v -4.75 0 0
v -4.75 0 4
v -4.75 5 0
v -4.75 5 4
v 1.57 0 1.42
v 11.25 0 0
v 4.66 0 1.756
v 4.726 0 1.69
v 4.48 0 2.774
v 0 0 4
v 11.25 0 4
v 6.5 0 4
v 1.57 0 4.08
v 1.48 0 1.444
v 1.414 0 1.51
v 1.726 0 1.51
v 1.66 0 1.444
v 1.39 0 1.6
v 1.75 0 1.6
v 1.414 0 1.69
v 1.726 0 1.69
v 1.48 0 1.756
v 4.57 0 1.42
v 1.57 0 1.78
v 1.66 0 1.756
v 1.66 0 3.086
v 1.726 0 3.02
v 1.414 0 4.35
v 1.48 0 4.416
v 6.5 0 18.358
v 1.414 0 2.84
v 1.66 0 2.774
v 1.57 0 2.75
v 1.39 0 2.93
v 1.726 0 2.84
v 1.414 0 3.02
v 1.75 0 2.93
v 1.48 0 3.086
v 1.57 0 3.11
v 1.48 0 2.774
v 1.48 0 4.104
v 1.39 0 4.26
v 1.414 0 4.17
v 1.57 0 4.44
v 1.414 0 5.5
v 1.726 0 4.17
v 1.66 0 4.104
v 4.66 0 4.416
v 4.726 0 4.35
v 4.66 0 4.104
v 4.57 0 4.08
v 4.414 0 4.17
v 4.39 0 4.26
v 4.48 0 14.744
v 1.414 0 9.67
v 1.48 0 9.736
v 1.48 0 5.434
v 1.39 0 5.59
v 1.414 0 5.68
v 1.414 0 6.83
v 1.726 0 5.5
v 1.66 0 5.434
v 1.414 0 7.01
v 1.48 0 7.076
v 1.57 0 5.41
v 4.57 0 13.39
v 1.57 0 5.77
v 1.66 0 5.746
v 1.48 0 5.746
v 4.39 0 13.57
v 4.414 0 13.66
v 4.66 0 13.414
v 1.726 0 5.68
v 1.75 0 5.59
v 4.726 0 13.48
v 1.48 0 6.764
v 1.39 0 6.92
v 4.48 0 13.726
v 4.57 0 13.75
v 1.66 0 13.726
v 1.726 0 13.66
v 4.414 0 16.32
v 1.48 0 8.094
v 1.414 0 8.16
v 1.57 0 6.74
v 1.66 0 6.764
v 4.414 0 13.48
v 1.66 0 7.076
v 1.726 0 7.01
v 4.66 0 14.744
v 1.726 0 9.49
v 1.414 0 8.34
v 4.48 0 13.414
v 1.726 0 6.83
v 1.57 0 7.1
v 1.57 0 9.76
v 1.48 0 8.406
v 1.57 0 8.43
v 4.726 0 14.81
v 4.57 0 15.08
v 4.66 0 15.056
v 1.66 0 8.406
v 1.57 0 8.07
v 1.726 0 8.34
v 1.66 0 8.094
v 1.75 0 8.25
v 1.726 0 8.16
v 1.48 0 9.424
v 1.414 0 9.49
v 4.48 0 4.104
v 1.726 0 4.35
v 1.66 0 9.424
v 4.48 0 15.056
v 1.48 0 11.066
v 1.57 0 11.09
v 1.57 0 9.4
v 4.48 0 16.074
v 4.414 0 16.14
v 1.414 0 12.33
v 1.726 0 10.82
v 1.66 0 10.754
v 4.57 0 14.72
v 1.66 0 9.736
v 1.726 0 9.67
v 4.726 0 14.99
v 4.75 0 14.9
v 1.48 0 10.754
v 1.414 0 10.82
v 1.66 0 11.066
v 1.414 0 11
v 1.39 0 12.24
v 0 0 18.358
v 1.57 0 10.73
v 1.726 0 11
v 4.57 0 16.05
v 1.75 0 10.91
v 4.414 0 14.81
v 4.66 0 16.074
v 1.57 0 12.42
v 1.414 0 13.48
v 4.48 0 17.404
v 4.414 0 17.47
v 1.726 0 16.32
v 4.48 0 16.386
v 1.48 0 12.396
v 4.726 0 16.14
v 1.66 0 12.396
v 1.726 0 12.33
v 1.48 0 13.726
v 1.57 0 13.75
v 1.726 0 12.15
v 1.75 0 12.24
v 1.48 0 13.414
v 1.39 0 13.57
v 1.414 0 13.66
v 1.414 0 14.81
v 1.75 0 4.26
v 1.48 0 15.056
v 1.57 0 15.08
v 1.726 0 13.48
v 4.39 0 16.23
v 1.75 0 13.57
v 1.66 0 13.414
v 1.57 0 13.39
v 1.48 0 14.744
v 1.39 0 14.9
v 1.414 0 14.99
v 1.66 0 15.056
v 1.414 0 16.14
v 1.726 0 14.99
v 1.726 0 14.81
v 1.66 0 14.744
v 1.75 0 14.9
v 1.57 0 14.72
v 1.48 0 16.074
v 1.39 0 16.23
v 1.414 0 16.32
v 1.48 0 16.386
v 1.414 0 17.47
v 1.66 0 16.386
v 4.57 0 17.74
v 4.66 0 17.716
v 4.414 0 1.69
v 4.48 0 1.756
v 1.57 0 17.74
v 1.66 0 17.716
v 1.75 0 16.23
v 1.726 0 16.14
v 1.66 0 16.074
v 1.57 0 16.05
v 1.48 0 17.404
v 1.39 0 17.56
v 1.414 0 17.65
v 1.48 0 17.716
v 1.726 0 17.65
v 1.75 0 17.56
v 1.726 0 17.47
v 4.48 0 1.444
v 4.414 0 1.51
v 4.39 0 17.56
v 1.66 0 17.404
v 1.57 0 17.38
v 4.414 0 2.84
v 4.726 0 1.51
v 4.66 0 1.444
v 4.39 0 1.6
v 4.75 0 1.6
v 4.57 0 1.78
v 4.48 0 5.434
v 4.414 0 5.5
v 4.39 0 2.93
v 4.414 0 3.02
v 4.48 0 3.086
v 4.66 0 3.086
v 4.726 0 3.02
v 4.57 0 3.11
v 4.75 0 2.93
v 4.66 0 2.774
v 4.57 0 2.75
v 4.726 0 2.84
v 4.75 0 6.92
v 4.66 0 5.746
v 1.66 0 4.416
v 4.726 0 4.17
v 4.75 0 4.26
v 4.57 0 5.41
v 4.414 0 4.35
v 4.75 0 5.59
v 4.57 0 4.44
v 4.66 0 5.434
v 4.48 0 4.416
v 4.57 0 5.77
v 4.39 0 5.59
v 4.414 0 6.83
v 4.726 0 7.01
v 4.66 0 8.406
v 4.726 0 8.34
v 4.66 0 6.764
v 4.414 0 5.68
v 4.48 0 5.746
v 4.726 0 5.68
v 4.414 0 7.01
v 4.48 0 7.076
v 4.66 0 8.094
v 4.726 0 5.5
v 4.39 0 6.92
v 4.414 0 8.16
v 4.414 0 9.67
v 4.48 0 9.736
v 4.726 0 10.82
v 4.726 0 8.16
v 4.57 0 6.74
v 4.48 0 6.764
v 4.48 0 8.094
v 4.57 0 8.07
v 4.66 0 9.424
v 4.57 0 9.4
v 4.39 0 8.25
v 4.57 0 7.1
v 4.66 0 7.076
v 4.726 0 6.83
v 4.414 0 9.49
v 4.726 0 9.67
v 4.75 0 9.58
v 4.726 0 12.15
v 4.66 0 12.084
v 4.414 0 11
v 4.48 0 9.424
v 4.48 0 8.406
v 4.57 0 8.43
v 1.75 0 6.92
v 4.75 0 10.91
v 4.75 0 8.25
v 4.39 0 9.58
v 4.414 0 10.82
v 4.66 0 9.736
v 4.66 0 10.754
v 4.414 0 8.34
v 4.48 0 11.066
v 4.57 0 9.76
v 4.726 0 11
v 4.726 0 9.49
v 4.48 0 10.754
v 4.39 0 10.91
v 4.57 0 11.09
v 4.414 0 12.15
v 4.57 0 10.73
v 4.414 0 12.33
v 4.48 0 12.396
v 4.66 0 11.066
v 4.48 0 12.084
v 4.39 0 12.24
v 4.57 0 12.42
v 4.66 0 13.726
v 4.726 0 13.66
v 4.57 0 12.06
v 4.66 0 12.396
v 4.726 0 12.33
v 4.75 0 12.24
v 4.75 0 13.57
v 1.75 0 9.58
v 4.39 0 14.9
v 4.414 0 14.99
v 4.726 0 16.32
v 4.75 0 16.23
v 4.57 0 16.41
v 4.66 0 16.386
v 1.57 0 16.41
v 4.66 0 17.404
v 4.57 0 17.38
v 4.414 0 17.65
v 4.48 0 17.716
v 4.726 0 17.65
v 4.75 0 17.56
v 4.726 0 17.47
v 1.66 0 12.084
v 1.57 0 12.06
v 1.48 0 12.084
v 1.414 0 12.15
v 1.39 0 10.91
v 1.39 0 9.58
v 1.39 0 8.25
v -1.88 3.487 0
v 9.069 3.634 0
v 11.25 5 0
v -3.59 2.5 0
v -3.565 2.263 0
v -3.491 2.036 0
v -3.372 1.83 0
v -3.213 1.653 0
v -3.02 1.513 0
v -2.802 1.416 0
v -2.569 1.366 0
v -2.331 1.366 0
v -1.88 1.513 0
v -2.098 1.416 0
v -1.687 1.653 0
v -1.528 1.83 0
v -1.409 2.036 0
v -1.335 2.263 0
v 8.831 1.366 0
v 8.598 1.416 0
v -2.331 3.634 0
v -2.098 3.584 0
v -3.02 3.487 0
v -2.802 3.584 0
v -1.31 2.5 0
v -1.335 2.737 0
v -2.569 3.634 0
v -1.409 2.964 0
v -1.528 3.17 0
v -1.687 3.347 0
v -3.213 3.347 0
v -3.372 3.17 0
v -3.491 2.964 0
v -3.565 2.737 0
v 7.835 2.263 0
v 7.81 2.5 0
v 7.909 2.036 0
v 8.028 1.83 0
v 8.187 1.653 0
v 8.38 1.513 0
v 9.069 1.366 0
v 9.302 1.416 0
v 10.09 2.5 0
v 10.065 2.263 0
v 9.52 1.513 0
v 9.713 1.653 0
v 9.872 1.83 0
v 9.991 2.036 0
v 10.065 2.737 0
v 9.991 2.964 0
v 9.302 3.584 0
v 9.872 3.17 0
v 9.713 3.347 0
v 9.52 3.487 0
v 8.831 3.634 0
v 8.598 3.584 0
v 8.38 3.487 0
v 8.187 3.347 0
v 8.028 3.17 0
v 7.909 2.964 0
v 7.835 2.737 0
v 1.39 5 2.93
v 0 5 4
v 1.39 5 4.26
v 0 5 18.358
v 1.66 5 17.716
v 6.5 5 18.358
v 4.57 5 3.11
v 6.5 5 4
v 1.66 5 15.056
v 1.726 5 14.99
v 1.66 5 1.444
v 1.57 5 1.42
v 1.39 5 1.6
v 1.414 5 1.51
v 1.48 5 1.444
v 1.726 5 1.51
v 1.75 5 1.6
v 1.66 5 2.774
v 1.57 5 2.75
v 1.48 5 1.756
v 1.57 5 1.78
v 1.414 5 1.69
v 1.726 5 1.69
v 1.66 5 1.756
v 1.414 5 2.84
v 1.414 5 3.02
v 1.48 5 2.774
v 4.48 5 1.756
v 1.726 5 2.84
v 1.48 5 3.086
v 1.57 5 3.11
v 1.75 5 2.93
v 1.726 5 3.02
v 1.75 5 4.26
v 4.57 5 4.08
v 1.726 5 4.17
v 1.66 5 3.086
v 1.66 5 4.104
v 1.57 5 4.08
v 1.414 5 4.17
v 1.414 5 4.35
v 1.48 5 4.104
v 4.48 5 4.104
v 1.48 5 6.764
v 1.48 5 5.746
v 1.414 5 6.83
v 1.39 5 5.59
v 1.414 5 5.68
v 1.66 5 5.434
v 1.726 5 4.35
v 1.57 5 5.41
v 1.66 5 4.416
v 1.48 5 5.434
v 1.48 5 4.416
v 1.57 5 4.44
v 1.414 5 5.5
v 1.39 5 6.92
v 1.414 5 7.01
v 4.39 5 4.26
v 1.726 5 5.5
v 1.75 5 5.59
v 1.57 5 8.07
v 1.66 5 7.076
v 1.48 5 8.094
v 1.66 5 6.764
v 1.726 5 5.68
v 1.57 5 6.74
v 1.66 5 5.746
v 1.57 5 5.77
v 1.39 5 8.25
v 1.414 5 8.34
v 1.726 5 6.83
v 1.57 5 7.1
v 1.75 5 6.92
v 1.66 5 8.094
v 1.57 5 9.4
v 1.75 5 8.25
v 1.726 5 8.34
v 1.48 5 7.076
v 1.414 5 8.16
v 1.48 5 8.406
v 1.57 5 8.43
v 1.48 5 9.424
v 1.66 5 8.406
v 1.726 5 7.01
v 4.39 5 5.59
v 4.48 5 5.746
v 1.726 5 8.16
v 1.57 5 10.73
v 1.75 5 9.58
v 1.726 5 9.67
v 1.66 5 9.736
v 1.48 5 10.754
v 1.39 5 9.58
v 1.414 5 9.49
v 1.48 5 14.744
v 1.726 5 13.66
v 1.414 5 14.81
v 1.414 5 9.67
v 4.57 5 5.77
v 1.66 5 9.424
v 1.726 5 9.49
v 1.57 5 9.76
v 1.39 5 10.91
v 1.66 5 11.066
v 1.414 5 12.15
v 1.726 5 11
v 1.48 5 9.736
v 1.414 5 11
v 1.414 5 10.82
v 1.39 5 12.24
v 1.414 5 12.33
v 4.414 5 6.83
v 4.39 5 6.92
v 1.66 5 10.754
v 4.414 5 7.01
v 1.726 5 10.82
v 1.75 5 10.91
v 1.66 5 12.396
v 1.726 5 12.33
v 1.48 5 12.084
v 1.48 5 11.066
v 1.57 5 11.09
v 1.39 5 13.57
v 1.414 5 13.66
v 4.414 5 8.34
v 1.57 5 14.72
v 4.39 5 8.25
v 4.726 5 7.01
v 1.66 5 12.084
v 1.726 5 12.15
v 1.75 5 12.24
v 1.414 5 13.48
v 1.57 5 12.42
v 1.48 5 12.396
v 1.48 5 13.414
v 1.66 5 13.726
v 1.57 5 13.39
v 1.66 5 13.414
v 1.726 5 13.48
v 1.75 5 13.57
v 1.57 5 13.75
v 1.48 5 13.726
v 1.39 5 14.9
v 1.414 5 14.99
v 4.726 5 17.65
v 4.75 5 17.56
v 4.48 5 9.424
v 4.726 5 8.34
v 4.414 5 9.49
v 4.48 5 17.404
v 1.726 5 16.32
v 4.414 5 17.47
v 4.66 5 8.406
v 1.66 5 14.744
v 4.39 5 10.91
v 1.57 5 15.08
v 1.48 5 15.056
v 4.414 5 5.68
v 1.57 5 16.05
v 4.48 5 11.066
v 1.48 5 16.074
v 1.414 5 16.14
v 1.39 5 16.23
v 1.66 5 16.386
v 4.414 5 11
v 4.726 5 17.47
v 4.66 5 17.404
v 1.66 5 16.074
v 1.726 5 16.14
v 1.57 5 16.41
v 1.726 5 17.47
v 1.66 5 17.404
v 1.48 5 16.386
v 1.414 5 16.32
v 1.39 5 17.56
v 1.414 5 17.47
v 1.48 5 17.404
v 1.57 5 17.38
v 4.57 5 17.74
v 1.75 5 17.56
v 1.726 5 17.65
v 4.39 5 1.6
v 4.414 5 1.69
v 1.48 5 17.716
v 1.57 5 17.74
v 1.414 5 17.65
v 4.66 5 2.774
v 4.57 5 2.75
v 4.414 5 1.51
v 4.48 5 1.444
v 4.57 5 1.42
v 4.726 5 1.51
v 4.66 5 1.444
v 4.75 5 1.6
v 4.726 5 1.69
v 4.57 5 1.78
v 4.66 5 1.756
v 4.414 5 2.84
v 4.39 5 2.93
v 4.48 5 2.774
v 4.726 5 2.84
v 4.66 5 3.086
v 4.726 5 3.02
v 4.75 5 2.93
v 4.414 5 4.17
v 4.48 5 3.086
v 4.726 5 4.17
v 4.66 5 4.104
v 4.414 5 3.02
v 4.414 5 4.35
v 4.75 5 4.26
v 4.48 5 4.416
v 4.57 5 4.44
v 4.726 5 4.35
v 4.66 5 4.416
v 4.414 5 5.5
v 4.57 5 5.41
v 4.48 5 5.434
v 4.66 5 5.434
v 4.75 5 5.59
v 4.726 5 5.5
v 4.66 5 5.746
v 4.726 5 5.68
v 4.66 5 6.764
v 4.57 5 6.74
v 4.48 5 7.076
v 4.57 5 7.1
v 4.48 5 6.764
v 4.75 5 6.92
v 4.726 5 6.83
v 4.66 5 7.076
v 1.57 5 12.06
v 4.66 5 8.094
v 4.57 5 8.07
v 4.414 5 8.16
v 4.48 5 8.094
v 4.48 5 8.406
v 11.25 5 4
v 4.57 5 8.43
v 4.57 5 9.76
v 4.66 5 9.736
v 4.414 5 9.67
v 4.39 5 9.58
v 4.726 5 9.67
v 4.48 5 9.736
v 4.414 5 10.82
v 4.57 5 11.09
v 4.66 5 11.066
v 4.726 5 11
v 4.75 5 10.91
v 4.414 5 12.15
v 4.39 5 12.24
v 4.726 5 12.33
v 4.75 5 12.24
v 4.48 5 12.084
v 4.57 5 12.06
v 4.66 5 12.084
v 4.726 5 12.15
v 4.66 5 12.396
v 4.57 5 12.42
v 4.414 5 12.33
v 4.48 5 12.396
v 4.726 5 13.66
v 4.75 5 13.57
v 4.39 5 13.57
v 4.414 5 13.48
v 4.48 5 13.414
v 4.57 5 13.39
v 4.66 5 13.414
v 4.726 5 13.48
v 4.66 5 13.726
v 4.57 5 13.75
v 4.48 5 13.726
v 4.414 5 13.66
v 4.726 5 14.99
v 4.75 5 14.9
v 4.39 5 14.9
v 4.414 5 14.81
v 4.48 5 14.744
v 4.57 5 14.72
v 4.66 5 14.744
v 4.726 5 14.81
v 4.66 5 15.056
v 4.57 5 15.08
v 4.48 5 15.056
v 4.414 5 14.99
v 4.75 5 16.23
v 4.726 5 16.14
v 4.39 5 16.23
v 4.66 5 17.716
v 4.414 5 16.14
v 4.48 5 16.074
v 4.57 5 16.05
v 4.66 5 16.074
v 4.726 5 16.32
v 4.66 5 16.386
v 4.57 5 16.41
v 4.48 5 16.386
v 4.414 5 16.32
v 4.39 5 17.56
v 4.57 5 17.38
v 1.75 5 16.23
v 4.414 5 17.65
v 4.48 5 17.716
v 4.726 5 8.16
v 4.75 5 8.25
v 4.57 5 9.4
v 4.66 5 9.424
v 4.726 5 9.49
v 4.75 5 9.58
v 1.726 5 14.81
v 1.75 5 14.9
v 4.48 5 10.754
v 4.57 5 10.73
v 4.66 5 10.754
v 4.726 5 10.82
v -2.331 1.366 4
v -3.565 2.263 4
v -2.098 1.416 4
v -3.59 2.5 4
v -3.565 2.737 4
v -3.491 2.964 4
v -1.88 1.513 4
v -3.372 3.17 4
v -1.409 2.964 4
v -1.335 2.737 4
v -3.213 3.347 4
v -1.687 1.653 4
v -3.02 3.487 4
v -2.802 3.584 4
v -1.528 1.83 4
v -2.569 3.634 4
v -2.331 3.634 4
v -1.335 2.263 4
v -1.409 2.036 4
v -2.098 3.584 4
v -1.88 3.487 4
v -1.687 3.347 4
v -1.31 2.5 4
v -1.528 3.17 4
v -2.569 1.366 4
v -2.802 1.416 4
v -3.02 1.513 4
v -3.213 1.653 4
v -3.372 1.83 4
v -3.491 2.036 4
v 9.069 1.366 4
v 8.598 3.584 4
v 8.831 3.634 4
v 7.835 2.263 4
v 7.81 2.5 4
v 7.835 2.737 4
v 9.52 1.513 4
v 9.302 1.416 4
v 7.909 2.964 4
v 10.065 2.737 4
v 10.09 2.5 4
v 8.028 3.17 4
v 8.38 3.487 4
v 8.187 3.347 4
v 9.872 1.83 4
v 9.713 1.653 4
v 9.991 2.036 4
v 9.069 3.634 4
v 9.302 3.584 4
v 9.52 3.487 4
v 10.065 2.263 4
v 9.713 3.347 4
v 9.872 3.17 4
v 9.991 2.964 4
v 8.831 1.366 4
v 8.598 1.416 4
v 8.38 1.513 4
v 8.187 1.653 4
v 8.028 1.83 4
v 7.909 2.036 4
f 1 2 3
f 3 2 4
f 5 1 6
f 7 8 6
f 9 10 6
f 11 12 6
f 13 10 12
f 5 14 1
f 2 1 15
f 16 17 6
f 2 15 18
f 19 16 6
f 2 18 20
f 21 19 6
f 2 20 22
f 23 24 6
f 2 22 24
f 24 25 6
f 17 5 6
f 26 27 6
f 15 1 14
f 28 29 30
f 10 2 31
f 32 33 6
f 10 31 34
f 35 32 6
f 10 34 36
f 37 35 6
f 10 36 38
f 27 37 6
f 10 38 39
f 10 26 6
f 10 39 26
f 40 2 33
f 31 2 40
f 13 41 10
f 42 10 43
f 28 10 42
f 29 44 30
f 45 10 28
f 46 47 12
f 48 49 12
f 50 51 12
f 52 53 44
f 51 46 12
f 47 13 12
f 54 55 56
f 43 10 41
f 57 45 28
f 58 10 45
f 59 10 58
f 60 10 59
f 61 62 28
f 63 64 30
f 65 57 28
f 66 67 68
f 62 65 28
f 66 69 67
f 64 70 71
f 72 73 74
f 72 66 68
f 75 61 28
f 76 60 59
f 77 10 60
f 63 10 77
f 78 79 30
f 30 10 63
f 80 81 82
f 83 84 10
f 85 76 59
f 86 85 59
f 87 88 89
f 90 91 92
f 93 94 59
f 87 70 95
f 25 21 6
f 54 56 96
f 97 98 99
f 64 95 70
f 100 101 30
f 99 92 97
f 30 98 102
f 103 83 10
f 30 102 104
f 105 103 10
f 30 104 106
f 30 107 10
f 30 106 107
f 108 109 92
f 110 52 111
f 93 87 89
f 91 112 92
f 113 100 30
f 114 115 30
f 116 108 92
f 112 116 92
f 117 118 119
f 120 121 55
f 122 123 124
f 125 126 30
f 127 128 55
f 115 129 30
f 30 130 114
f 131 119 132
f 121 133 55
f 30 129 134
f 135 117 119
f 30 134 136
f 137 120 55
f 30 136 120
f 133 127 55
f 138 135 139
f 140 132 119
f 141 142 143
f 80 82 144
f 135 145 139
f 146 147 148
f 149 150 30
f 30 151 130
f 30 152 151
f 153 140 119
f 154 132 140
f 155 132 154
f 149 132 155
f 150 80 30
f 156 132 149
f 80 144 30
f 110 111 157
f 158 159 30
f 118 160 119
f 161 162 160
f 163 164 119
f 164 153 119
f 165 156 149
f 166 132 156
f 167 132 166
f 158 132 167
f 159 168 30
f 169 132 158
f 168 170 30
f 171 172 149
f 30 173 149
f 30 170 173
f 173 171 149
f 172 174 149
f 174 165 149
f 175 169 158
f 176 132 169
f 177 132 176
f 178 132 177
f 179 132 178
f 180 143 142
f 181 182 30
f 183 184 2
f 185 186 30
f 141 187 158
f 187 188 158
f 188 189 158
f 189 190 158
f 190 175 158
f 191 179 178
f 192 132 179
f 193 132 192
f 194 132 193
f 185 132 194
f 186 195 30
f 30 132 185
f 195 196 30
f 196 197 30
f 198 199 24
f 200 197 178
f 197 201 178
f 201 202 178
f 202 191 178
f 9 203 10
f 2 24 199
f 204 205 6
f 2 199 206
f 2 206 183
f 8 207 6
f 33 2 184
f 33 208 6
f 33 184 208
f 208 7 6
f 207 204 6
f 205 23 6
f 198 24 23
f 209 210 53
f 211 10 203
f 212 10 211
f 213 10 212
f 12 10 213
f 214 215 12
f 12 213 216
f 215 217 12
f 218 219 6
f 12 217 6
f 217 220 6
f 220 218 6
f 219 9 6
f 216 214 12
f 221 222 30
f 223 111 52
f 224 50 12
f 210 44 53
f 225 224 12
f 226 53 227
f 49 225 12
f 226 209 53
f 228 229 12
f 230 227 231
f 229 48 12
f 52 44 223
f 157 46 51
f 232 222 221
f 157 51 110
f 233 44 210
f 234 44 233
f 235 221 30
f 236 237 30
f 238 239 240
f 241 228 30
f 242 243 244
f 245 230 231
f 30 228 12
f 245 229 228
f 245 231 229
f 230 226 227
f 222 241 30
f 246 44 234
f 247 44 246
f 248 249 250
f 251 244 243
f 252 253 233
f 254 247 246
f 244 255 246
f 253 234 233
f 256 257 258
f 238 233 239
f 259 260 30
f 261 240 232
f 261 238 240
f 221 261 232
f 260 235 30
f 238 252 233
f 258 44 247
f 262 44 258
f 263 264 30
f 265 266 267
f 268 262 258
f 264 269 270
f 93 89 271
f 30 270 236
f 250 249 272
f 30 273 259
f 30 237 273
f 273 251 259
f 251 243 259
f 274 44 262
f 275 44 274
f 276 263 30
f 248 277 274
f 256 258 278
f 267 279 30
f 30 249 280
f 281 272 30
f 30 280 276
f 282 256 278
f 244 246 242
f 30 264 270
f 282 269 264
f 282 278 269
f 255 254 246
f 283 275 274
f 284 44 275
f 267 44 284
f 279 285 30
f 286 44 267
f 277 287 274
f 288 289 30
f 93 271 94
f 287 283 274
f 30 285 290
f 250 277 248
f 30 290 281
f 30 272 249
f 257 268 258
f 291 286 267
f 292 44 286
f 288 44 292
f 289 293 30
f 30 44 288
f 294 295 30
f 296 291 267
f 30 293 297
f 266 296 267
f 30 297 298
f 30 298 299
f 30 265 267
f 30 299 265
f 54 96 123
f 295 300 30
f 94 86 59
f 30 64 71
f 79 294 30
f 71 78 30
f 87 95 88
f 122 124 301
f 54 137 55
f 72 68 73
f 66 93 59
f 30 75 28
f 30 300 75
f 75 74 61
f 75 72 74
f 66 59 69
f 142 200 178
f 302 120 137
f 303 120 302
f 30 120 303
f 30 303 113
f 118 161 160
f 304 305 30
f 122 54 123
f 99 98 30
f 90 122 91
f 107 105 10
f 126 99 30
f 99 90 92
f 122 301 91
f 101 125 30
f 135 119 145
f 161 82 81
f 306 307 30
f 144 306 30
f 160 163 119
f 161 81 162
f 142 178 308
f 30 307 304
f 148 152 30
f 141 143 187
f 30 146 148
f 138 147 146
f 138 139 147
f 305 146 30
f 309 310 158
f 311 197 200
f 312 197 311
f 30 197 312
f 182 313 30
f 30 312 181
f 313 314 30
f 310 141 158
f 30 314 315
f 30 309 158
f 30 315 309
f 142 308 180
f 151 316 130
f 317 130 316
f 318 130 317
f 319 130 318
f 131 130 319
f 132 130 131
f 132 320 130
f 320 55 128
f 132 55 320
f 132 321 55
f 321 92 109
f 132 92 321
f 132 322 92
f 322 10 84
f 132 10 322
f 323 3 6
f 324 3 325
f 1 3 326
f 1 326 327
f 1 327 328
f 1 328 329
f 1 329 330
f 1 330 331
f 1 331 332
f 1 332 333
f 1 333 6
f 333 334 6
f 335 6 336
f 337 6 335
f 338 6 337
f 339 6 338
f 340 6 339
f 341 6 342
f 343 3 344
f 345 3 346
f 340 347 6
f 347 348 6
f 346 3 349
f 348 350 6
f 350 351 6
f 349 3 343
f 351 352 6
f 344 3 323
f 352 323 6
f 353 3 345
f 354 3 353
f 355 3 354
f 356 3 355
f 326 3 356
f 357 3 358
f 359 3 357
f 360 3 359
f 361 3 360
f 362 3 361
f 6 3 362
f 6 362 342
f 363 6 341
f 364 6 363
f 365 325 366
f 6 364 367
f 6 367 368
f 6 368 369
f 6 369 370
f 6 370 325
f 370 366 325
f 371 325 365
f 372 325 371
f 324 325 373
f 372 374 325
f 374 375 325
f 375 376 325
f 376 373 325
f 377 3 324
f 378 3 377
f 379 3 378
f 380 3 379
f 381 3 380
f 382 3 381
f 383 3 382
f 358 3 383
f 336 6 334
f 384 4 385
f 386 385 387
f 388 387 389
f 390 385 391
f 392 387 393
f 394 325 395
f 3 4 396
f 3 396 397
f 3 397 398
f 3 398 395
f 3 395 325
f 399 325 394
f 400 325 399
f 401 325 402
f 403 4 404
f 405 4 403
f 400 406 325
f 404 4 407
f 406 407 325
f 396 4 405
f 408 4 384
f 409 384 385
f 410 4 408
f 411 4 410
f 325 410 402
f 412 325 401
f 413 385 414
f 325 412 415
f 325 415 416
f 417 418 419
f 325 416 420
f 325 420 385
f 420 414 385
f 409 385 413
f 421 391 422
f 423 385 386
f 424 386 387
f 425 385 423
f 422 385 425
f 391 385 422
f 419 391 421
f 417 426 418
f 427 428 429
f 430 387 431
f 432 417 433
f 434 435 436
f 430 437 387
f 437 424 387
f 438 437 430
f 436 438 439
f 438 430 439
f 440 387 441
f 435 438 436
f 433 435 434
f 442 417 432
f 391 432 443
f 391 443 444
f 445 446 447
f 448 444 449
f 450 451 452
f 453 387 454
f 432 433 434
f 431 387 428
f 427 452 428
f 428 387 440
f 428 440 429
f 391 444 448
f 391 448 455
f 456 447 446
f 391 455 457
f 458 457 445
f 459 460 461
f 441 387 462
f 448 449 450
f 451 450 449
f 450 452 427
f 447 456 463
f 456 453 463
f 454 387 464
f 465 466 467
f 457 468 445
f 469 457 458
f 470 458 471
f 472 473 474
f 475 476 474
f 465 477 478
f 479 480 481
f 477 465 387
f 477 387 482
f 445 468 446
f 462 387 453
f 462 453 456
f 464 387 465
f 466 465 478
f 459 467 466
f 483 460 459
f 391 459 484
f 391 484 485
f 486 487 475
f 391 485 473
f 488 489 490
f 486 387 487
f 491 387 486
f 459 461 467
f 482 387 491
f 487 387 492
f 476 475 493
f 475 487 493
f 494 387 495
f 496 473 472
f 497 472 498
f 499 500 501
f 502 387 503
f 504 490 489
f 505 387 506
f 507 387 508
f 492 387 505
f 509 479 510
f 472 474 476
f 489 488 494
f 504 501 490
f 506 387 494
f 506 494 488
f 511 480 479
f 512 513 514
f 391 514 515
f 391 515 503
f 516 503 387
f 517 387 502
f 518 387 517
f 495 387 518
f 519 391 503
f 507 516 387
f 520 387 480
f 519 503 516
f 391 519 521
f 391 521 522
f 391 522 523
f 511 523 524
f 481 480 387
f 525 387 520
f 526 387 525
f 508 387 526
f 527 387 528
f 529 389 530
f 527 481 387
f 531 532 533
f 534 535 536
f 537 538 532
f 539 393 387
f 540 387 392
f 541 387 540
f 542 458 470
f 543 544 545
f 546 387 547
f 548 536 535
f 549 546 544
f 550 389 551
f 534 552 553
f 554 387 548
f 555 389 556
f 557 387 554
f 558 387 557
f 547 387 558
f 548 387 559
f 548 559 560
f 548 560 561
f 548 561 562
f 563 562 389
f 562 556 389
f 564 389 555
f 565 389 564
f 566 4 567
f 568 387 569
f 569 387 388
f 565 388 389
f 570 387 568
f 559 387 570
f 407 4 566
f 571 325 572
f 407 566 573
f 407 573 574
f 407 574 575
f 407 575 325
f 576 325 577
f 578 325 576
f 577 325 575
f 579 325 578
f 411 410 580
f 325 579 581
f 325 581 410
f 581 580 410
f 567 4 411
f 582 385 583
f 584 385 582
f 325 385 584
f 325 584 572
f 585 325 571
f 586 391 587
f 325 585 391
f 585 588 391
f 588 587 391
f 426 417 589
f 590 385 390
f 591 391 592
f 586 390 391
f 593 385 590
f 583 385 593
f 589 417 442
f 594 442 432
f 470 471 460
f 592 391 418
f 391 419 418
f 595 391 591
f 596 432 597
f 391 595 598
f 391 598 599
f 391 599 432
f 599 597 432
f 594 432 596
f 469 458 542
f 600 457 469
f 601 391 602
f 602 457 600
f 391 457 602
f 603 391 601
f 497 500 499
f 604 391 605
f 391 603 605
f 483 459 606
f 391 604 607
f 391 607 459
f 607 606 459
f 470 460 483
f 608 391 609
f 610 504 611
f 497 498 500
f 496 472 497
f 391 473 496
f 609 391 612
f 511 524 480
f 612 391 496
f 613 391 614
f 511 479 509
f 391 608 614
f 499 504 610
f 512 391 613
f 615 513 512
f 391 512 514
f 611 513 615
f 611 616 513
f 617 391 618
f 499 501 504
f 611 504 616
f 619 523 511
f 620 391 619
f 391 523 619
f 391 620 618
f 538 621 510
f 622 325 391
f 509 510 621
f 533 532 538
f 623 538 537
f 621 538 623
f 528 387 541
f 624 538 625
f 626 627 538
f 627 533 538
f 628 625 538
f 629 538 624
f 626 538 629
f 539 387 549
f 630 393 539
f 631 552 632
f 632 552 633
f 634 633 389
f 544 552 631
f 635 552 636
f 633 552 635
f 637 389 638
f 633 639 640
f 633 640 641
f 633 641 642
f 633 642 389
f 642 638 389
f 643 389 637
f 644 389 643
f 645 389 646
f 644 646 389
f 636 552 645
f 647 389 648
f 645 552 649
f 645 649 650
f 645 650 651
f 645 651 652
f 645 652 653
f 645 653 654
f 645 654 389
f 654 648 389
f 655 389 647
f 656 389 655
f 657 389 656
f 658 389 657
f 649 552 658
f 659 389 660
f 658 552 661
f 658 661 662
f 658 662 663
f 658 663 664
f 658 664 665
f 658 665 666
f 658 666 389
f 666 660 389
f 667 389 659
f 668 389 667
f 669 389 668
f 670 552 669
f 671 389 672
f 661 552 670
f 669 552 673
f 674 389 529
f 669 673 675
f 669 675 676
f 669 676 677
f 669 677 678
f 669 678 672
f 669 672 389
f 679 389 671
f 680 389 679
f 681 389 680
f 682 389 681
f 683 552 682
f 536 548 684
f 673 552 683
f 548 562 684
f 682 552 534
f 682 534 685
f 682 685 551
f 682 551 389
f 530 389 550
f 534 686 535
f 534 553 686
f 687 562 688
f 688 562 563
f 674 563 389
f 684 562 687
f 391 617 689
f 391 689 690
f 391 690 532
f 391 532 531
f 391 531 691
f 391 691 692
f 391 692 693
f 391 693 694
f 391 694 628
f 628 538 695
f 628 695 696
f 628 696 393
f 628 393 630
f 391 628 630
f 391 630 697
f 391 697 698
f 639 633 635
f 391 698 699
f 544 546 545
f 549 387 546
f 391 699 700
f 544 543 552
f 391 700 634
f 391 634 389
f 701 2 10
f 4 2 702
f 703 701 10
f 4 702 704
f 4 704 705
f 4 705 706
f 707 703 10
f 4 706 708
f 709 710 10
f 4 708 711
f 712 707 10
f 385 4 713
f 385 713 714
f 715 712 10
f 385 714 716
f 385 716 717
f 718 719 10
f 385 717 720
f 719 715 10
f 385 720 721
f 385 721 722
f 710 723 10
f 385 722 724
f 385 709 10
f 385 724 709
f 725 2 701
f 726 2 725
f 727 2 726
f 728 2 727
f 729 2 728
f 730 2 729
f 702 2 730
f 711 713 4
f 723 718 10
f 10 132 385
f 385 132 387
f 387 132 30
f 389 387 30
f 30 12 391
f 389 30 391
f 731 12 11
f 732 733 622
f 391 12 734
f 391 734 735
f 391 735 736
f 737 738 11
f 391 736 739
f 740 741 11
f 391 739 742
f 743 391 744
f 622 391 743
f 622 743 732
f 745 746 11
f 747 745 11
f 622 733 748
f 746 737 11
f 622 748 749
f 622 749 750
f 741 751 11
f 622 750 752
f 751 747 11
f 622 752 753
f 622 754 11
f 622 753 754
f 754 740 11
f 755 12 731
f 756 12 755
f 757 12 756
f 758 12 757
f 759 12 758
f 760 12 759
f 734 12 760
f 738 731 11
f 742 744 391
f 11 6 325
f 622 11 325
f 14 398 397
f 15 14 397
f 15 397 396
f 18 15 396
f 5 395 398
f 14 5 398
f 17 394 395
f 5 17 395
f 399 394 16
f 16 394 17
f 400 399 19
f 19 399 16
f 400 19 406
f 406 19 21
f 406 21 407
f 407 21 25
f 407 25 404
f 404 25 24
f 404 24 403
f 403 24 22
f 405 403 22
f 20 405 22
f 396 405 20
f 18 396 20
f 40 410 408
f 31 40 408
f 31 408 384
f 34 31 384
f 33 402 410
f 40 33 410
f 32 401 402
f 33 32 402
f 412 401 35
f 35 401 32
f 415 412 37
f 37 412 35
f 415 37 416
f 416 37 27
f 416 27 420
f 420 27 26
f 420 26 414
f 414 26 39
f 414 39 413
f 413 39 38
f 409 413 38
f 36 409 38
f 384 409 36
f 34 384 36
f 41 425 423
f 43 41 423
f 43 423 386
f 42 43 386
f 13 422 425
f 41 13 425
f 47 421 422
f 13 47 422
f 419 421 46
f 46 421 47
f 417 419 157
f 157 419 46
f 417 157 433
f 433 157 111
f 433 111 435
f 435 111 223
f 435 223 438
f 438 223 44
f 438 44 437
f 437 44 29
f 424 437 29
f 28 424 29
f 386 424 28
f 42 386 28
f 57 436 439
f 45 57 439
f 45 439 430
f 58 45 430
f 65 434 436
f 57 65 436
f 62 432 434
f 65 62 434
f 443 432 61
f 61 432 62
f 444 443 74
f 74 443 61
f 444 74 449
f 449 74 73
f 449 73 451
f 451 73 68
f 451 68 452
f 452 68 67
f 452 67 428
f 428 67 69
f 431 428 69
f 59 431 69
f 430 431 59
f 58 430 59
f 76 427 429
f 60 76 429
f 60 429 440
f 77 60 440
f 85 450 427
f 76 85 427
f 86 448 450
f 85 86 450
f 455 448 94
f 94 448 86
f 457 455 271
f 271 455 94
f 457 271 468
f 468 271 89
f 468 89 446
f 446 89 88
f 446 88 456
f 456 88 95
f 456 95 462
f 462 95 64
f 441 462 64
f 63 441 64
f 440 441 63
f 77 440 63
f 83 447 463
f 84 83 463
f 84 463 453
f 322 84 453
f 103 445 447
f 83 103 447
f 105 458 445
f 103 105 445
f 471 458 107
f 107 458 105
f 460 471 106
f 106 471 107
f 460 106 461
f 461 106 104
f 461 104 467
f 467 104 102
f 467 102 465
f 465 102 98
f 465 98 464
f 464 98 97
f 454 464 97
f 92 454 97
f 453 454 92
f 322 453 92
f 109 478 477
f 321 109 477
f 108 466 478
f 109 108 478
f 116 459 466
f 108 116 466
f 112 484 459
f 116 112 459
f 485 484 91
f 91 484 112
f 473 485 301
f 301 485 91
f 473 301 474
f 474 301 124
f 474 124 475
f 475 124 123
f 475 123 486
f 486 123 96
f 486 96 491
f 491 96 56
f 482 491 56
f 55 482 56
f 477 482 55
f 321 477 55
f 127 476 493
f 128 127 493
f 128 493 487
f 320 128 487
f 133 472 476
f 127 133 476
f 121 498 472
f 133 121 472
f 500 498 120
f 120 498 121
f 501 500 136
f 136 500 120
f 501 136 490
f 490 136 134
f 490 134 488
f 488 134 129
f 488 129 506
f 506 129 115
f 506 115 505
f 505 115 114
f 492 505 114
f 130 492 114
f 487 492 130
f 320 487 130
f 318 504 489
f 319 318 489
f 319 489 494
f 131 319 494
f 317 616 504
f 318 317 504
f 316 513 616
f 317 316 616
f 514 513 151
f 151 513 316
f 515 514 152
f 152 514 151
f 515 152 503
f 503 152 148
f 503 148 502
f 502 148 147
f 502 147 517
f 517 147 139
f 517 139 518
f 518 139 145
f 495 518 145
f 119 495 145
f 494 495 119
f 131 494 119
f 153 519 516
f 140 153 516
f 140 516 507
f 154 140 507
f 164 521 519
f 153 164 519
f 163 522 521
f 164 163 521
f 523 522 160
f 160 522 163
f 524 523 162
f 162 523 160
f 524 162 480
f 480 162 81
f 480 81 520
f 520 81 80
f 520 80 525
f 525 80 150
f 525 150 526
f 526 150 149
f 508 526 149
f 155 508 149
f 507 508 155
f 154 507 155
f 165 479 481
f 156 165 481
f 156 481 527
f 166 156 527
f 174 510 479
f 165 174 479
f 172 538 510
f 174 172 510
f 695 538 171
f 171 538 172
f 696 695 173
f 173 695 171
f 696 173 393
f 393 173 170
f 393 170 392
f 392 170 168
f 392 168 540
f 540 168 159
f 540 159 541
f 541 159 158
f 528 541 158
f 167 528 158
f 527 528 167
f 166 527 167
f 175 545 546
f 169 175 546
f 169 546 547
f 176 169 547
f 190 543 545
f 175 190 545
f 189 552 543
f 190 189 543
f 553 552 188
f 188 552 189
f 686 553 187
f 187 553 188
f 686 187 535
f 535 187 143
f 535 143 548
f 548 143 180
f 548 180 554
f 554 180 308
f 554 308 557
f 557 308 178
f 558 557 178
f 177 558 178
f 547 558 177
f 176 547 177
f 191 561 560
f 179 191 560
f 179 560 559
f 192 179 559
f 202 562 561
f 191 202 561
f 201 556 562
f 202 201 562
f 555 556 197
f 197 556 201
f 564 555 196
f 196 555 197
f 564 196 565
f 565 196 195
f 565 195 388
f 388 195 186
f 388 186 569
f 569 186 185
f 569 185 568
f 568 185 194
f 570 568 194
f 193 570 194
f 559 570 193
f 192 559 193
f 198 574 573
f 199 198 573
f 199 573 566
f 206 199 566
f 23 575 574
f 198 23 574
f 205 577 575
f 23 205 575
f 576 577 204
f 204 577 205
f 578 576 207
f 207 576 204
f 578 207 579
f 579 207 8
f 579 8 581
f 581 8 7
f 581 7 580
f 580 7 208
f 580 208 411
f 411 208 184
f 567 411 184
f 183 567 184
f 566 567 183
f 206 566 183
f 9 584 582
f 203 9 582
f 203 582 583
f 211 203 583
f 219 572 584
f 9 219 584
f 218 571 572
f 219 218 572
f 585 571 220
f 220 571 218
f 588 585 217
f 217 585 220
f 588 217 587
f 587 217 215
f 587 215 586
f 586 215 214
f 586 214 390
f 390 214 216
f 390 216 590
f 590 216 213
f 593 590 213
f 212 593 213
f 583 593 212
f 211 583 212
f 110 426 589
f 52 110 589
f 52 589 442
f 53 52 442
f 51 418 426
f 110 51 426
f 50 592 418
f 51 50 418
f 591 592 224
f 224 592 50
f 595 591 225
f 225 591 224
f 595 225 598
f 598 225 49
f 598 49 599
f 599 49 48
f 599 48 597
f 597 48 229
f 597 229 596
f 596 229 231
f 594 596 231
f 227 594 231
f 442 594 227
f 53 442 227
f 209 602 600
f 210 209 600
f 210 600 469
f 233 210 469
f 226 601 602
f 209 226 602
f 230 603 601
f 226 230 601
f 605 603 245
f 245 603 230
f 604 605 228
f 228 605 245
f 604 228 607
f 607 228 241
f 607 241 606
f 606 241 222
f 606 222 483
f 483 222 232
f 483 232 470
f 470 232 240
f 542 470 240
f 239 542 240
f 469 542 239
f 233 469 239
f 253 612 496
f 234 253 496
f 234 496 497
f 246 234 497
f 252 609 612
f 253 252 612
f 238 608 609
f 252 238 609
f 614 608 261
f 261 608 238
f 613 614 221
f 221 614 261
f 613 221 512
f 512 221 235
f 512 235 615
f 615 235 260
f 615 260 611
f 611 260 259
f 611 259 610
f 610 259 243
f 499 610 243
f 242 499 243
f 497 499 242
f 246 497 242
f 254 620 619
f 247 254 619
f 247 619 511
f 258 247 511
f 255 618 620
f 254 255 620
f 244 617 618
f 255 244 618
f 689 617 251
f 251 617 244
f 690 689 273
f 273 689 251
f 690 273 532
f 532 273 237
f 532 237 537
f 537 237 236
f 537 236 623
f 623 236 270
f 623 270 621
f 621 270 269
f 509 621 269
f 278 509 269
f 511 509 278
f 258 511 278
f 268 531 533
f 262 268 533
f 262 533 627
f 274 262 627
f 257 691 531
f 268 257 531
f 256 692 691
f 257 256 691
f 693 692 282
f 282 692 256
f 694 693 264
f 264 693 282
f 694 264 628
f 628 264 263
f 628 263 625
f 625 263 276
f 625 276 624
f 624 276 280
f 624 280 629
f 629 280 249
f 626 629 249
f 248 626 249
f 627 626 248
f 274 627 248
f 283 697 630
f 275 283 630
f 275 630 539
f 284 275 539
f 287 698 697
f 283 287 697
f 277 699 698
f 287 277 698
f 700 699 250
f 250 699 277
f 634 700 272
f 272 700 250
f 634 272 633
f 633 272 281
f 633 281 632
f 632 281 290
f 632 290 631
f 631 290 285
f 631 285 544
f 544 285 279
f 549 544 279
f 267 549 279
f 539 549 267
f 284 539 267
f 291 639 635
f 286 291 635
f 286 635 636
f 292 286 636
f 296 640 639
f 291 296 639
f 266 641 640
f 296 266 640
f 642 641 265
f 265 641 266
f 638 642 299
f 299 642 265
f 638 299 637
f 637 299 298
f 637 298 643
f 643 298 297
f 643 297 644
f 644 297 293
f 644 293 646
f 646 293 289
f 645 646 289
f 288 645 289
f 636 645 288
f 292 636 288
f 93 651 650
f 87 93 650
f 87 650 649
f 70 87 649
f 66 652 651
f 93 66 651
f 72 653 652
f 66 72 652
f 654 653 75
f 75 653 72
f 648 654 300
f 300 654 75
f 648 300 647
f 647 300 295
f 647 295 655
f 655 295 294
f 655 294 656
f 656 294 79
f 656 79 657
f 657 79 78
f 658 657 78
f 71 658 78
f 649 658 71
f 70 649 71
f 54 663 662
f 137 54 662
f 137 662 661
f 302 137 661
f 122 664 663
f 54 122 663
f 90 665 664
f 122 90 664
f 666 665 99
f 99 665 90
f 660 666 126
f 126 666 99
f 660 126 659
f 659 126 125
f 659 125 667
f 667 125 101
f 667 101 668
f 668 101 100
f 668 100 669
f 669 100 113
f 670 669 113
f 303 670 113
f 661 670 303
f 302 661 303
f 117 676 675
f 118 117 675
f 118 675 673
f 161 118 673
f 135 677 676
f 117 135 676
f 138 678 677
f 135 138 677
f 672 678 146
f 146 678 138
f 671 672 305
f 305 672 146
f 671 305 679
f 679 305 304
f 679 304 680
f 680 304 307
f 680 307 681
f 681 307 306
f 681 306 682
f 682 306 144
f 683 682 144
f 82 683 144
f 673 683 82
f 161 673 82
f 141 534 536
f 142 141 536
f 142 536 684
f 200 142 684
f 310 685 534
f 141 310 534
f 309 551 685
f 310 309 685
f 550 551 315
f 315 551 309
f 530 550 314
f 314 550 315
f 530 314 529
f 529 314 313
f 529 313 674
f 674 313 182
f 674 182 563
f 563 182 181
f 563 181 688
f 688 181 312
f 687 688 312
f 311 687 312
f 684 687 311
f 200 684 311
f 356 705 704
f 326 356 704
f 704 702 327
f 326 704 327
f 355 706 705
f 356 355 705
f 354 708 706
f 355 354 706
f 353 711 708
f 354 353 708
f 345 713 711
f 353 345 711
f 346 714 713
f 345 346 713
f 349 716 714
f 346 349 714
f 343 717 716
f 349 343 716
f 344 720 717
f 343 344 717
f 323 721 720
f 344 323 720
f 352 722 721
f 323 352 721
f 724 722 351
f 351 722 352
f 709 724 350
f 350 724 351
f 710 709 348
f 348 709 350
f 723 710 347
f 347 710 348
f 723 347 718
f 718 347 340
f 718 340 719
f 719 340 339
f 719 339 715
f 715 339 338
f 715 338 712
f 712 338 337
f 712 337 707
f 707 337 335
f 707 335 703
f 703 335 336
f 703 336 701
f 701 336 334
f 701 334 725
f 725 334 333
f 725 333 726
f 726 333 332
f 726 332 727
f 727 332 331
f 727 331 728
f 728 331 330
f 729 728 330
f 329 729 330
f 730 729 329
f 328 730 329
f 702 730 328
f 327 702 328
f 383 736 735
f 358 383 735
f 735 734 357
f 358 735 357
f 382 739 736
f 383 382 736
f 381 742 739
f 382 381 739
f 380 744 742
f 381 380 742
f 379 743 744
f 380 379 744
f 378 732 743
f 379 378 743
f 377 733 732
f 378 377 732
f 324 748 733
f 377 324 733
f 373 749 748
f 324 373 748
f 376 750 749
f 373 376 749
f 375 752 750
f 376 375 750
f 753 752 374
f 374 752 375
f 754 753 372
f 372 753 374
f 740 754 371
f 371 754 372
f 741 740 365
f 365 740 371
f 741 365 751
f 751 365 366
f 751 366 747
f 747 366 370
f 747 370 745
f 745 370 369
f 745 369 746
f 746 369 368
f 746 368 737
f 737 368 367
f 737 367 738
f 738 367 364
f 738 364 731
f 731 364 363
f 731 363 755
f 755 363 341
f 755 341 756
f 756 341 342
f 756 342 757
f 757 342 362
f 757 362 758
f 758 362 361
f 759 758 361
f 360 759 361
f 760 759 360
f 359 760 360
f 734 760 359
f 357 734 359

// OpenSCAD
//units: mm

//main body block
z = 13.35;
x = 6.5;
y = 5;

$fs=.1;
//wire holes
start_height = 1.6;
height_increment = 1.33;
collumn_gap = 3;
tol = 1; //tolerance for ensuring complete cuts (no zero width sections)
collumn_x = 1.57;
wire_diameter = 0.36;
module CenterBlock(N_wirepairs){
  difference(){
    cube([x,y, start_height + height_increment*(N_wirepairs + .6)]);
    // first collumn
    for (i = [0:N_wirepairs]){
      translate([collumn_x, -tol/2, start_height + i*height_increment]) {
	rotate(90,[-1,0,0]) {
	  cylinder(r=wire_diameter/2, y + tol);
	}
	//second collumn
	translate([collumn_gap, 0, 0]){
	  rotate(90,[-1,0,0]) {
	    cylinder(r=wire_diameter/2, y + tol);
	  }
	}
      }
    }
  }
}

module LScrewWing(){
  // screw wings
  translate([-4.75,0,0]){
    difference(){
      cube([4.75, 5, 4]);
      translate([2.3, 2.5, -tol/2]){
	cylinder(h=6+tol, r=1.14);
      }
    }
  }
}
module RScrewRing(){
  translate([6.5,0,0]){
    difference(){
      cube([4.75, 5, 4]);
      translate([4.75-2.3, 2.5, -tol/2]){
	cylinder(h=6+tol, r=1.14);
      }
    }
  }
}

//$fn=20;
//$fs=1;
union(){
    CenterBlock(12);
    LScrewWing();
    RScrewRing();
}
